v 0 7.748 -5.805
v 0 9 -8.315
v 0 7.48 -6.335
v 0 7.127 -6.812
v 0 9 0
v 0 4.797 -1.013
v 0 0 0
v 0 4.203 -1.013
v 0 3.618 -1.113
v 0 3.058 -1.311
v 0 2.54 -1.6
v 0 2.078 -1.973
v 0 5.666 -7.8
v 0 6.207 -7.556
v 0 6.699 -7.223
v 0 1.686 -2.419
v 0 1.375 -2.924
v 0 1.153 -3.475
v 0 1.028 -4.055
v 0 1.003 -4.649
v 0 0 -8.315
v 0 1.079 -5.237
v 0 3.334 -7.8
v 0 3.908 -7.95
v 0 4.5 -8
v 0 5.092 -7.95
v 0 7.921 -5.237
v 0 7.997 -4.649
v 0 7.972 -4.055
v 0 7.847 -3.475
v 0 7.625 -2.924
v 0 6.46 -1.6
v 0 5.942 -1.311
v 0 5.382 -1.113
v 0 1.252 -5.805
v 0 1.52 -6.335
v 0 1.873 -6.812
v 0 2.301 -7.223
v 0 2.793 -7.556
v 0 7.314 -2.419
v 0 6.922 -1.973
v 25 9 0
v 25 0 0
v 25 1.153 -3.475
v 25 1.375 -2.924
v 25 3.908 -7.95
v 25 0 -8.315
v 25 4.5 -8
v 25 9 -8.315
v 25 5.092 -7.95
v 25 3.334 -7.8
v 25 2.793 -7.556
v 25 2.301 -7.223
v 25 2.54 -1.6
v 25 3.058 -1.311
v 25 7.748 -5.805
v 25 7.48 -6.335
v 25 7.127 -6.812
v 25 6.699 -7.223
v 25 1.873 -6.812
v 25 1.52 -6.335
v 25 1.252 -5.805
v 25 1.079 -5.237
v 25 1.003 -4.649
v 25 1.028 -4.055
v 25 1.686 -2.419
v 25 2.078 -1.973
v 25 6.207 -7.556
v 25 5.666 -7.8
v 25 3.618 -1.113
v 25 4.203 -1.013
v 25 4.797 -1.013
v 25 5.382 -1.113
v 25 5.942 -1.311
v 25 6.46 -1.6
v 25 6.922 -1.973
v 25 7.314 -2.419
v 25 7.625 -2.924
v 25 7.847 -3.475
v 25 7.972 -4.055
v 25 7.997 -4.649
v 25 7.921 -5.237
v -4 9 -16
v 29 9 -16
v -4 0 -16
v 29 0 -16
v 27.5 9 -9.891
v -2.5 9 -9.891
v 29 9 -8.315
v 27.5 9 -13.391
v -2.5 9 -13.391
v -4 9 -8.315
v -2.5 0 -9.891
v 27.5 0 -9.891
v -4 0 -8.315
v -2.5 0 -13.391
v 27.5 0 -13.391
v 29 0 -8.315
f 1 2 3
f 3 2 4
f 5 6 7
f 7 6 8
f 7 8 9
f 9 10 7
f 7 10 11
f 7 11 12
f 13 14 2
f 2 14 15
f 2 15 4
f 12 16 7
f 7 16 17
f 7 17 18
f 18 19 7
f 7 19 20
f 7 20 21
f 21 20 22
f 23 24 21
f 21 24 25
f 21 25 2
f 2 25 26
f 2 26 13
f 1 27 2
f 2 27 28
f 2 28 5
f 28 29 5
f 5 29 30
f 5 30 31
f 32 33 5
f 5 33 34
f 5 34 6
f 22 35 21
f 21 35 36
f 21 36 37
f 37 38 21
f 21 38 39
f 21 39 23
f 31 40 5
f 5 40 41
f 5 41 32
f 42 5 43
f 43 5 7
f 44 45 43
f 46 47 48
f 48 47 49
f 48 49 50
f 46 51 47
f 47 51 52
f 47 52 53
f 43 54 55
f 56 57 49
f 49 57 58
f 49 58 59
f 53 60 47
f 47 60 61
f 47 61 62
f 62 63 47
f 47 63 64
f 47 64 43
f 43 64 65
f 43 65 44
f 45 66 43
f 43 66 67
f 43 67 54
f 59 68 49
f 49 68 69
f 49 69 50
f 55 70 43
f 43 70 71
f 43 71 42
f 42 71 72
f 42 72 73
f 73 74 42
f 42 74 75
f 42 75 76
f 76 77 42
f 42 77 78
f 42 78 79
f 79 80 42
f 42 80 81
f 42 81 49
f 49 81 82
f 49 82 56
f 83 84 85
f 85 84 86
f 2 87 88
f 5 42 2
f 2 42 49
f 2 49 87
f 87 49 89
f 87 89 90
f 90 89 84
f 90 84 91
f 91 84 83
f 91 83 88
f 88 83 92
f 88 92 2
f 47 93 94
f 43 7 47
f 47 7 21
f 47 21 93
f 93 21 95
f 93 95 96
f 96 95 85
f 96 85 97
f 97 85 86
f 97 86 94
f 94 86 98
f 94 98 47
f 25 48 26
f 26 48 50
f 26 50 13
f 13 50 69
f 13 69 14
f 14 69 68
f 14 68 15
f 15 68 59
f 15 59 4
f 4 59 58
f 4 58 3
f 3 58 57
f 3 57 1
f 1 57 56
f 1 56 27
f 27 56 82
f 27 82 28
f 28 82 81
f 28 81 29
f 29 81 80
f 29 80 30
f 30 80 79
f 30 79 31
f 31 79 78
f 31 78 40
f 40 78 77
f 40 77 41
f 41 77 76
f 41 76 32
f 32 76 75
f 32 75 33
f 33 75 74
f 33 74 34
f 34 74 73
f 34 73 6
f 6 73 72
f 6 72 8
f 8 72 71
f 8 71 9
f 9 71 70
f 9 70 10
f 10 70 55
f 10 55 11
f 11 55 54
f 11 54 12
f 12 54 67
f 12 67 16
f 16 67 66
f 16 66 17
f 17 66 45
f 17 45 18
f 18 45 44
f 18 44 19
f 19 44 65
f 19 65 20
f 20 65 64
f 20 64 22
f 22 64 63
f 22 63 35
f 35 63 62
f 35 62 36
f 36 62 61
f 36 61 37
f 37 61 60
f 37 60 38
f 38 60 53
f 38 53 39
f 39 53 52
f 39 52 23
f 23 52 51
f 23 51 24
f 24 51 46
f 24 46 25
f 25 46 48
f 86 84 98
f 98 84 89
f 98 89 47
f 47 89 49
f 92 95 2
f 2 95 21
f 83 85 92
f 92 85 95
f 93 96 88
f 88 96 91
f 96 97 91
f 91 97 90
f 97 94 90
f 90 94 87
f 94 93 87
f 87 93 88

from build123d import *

# Parameters (mm, degrees)
ESQUISSE1_W             = 25
ESQUISSE1_H             = 16
BOSS_EXTRU_1_DEPTH      = 9
ESQUISSE2_R             = 3.5
ENL_V_MAT_EXTRU_1_DEPTH = 32.016124839
BOSS_EXTRU_2_DEPTH      = 4
BOSS_EXTRU_2_DEPTH_BACK = 29
ESQUISSE5_W             = 7.685000099
ESQUISSE5_H             = 9
ESQUISSE3_W             = 30
ESQUISSE3_H             = 3.5
ENL_V_MAT_EXTRU_3_DEPTH = 35.322004603


with BuildPart() as part:
    # Esquisse1 → Boss.-Extru.1 (new body)
    with BuildSketch(Plane(origin=(0, 0, 0), x_dir=(1, 0, 0), z_dir=(0, 1, 0))):
        with Locations((12.5, 8)):
            Rectangle(ESQUISSE1_W, ESQUISSE1_H)
    extrude(amount=BOSS_EXTRU_1_DEPTH)

    # Esquisse2 → Enlèv. mat.-Extru.1 (cut, through all)
    with BuildSketch(Plane(origin=(25, 0, 0), x_dir=(0, 0, -1), z_dir=(1, 0, 0))):
        with Locations((4.5, 4.5)):
            Circle(ESQUISSE2_R)
    extrude(amount=-ENL_V_MAT_EXTRU_1_DEPTH, mode=Mode.SUBTRACT)

    # Esquisse5 → Boss.-Extru.2 (add, two sides: drawn at the far end of the back side and taken through both)
    with BuildSketch(Plane(origin=(25, 0, 0), x_dir=(0, 0, -1), z_dir=(1, 0, 0)).offset(-BOSS_EXTRU_2_DEPTH_BACK)):
        with Locations((12.157499951, 4.5)):
            Rectangle(ESQUISSE5_W, ESQUISSE5_H)
    extrude(amount=BOSS_EXTRU_2_DEPTH + BOSS_EXTRU_2_DEPTH_BACK)

    # Esquisse3 → Enlèv. mat.-Extru.3 (cut, through all)
    with BuildSketch(Plane(origin=(0, 9, 0), x_dir=(1, 0, 0), z_dir=(0, 1, 0))):
        with Locations((12.5, 11.640847207)):
            Rectangle(ESQUISSE3_W, ESQUISSE3_H)
    extrude(amount=-ENL_V_MAT_EXTRU_3_DEPTH, mode=Mode.SUBTRACT)


solid = part.part
